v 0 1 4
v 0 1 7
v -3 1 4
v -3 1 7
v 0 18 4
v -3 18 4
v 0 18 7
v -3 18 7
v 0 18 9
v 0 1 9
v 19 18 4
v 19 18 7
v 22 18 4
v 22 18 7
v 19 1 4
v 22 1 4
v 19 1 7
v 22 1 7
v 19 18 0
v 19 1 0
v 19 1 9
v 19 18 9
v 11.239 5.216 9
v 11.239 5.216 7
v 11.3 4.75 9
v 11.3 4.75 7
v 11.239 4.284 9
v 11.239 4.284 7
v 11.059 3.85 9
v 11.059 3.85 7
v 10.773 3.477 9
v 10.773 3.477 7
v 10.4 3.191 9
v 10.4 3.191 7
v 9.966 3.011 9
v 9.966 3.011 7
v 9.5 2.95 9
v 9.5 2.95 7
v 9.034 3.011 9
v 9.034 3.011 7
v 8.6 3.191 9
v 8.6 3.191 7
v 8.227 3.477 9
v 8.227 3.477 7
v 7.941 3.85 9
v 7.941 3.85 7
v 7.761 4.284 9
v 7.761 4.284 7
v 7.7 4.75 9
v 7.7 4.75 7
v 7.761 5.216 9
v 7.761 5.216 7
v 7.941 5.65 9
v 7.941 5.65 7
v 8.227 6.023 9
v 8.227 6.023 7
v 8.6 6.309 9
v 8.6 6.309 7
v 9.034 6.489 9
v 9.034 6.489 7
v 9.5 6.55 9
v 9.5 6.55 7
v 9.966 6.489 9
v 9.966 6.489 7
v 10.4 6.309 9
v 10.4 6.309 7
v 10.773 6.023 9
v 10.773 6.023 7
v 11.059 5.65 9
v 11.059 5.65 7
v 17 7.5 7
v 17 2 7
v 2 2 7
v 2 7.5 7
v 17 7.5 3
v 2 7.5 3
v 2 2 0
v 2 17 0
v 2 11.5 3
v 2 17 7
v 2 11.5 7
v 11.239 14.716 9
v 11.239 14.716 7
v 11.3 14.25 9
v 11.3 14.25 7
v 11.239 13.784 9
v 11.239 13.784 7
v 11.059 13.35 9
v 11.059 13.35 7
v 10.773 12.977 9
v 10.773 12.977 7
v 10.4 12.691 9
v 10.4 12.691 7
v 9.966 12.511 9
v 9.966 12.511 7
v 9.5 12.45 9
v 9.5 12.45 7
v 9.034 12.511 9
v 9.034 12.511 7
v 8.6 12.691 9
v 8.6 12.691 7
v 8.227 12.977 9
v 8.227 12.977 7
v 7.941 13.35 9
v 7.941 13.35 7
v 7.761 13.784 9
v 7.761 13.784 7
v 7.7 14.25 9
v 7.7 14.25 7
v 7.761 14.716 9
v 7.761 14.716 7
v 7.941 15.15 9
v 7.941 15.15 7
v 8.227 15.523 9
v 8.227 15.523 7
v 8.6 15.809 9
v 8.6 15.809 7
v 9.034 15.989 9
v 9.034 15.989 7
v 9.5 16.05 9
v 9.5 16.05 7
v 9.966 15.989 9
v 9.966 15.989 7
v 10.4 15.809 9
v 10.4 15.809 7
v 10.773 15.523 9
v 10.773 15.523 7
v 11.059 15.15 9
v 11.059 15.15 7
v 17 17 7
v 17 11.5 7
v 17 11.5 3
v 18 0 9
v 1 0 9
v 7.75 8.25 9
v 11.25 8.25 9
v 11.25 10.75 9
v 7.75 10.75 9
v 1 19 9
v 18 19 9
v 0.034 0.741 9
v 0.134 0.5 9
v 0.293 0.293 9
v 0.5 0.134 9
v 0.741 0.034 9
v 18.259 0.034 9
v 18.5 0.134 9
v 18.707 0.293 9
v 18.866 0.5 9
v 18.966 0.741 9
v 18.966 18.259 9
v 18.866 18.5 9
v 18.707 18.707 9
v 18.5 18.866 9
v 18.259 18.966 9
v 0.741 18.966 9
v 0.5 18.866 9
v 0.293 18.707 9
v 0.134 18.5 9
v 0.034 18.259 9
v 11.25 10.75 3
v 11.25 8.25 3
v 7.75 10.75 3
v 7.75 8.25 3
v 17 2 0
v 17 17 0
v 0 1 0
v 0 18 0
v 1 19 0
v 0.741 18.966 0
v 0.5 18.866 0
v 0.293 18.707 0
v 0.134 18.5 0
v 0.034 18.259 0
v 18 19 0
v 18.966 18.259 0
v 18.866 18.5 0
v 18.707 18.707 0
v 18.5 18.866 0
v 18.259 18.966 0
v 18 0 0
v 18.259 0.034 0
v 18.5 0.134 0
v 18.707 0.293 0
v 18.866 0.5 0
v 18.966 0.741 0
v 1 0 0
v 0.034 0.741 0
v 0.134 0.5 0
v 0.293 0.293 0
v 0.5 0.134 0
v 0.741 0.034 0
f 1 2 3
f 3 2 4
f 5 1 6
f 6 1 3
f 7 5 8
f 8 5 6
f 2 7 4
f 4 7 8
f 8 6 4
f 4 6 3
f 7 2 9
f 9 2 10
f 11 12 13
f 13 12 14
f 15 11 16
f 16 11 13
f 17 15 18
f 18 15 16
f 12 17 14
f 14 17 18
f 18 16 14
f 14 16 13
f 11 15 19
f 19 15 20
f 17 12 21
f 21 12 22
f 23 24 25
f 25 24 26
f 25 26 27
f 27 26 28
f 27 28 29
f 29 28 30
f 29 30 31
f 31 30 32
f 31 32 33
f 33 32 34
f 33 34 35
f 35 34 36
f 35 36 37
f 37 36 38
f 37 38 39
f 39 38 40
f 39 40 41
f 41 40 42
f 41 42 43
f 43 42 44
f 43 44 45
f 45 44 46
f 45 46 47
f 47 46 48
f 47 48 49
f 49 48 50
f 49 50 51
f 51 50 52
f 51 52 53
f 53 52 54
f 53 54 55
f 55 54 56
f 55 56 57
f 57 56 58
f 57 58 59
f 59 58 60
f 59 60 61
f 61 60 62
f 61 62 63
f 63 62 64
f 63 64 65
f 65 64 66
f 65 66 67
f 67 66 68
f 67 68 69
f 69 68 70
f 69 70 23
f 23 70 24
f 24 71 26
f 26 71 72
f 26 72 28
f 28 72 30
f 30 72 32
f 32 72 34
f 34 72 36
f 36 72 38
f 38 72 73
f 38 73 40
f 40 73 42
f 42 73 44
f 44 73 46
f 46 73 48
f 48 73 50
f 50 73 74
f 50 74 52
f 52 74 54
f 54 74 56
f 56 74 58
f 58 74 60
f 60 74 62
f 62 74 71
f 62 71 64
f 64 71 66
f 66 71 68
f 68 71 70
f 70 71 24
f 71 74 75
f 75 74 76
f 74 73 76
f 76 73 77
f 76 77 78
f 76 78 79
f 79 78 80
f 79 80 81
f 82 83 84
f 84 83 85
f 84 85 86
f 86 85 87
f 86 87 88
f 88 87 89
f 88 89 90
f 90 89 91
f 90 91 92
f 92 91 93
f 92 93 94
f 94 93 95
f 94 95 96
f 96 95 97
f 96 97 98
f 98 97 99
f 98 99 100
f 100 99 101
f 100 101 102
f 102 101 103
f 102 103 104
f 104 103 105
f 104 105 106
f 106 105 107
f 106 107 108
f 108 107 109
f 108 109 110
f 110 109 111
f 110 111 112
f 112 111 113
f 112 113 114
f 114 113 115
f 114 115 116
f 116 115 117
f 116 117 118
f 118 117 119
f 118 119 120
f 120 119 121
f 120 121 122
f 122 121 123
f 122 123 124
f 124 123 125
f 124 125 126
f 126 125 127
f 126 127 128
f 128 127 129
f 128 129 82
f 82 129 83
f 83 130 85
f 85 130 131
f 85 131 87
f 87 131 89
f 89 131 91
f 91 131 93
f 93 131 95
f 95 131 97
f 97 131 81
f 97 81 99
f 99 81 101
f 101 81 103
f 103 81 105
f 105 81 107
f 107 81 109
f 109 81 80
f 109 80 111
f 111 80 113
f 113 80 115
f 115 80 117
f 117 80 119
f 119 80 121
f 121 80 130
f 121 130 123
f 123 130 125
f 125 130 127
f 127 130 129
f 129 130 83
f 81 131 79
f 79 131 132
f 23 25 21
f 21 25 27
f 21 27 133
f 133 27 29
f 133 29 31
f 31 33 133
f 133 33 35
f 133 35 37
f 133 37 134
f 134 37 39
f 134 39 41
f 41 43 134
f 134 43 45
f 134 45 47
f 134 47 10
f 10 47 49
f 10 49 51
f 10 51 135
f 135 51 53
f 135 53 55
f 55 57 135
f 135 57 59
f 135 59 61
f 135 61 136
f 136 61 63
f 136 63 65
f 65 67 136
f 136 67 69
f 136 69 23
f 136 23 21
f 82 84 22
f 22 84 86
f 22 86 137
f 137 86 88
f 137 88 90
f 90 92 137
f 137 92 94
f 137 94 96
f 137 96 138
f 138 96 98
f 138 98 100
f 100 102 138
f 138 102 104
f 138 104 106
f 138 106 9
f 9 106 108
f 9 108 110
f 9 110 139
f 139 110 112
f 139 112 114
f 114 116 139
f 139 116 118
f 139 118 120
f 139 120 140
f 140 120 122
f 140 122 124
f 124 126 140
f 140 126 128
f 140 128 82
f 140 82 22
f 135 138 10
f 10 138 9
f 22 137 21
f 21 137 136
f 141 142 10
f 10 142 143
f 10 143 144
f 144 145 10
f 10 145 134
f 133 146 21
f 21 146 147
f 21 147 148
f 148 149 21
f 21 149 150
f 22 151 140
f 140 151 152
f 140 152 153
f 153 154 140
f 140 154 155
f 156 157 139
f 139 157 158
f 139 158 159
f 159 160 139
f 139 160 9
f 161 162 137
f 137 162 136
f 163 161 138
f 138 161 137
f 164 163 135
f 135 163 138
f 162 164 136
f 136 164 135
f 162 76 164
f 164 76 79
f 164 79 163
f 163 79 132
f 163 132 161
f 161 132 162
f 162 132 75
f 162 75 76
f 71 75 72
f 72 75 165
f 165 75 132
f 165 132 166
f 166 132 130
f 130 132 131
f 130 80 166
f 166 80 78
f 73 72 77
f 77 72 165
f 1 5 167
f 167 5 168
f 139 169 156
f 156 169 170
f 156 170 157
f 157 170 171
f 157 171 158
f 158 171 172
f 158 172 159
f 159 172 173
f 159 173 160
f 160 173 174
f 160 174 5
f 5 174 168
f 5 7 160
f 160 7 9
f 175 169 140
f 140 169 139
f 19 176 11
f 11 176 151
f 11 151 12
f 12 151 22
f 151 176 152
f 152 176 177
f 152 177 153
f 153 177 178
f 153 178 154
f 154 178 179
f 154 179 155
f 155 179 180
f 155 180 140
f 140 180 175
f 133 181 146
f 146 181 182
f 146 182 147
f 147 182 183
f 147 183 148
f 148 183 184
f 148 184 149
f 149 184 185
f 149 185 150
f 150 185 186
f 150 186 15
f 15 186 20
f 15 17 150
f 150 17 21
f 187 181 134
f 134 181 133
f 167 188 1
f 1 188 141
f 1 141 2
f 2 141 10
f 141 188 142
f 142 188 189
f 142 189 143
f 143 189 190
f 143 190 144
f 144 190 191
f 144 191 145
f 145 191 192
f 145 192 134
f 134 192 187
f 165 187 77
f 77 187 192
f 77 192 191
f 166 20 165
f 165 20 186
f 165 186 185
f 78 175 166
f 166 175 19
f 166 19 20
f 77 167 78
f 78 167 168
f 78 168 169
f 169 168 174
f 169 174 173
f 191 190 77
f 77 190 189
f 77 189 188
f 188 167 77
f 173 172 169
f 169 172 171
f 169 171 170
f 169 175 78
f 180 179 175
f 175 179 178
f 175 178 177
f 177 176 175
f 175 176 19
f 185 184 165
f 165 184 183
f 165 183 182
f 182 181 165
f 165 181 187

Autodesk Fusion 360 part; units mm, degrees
sketch "Sketch1" plane through (0, 0, 0) normal (0, 0, 1) x (1, 0, 0)
  line L0 (1, 0) -> (18, 0)
  line L1 (19, 1) -> (19, 18)
  line L2 (18, 19) -> (1, 19)
  line L3 (0, 18) -> (0, 1)
  arc A0 (1, 19) -> (0, 18) centre (1, 18) ccw
  arc A1 (19, 18) -> (18, 19) centre (18, 18) ccw
  arc A2 (18, 0) -> (19, 1) centre (18, 1) ccw
  arc A3 (0, 1) -> (1, 0) centre (1, 1) ccw
  line L4 (18.7071, 18.7071) -> (0.2929, 0.2929) construction
  line L5 (18.7071, 0.2929) -> (0.2929, 18.7071) construction
  line L6 (2, 17) -> (17, 17)
  line L7 (17, 17) -> (17, 2)
  line L8 (17, 2) -> (2, 2)
  line L9 (2, 2) -> (2, 17)
  line L10 (17, 17) -> (2, 2) construction
  line L11 (2, 17) -> (17, 2) construction
  point P0 (19, 0)
  point P1 (0, 19)
  point P2 (9.5, 9.5)
  point P3 (9.5, 9.5)
  dimension "d1" = 19
  dimension "d2" = 19
  dimension "d3" = 1
  dimension "d4" = 1
  dimension "d5" = 1
  dimension "d6" = 1
  dimension "d7" = 15
  dimension "d8" = 15
extrude "Extrude1" add sketch "Sketch1" along normal blind 3 makes body 1
sketch "Sketch2" plane through (0, 0, 3) normal (0, 0, 1) x (-1, 0, 0)
  line L0 (-17, -2) -> (-2, -2)
  line L1 (-2, -2) -> (-2, -17)
  line L2 (-2, -17) -> (-17, -17)
  line L3 (-17, -17) -> (-17, -2)
  arc A0 (0, -1) -> (-1, 0) centre (-1, -1) ccw
  line L4 (-1, 0) -> (-18, 0)
  arc A1 (-18, 0) -> (-19, -1) centre (-18, -1) ccw
  line L5 (-19, -1) -> (-19, -18)
  arc A2 (-19, -18) -> (-18, -19) centre (-18, -18) ccw
  line L6 (-18, -19) -> (-1, -19)
  arc A3 (-1, -19) -> (0, -18) centre (-1, -18) ccw
  line L7 (0, -18) -> (0, -1)
  line L8 (-17, -2) -> (-2, -17) construction
  line L9 (-2, -2) -> (-17, -17) construction
  line L10 (-9.5, -9.5) -> (-17, -9.5) construction
  line L11 (-9.5, -9.5) -> (-2, -9.5) construction
  line L12 (-17, -11.5) -> (-2, -11.5)
  line L13 (-17, -7.5) -> (-2, -7.5)
  line L14 (-2, -7.5) -> (-2, -11.5)
  line L15 (-17, -11.5) -> (-17, -7.5)
  line L16 (-7.75, -10.75) -> (-11.25, -10.75)
  line L17 (-11.25, -10.75) -> (-11.25, -8.25)
  line L18 (-11.25, -8.25) -> (-7.75, -8.25)
  line L19 (-7.75, -8.25) -> (-7.75, -10.75)
  line L20 (-11.25, -8.25) -> (-7.75, -10.75) construction
  line L21 (-11.25, -10.75) -> (-7.75, -8.25) construction
  point P0 (-9.5, -9.5)
  point P1 (-9.5, -9.5)
  dimension "d11" = 2
  dimension "d12" = 2
  dimension "d13" = 3.5
  dimension "d14" = 2.5
extrude "Extrude2" add sketch "Sketch2" along normal blind 4 separate body contours L1 L3 L12 L13 L14 L15 makes body 2
extrude "Extrude3" add 1 faces at (0.6667, 7, 3) along direction (0, 0, 1) blind 4 on bodies 1 bodies 1 2
sketch "Sketch3" plane through (0, 11.5, 0) normal (0, 1, 0) x (-1, 0, 0)
  line L0 (-17, 3) -> (-2, 3)
  line L1 (-2, 3) -> (-2, 7)
  line L2 (-2, 7) -> (-17, 7)
  line L3 (-17, 7) -> (-17, 3)
sketch "Sketch4" plane through (0, 0, 7) normal (0, 0, 1) x (-1, 0, 0)
  line L0 (-17, -7.5) -> (-17, -2)
  line L1 (-17, -2) -> (-2, -2)
  line L2 (-2, -2) -> (-2, -7.5)
  line L3 (-2, -7.5) -> (-17, -7.5)
  line L4 (-11.25, -8.25) -> (-7.75, -8.25)
  line L5 (-7.75, -8.25) -> (-7.75, -10.75)
  line L6 (-7.75, -10.75) -> (-11.25, -10.75)
  line L7 (-11.25, -10.75) -> (-11.25, -8.25)
  line L8 (-17, -11.5) -> (-2, -11.5)
  line L9 (-2, -11.5) -> (-2, -17)
  line L10 (-2, -17) -> (-17, -17)
  line L11 (-17, -17) -> (-17, -11.5)
  arc A0 (0, -1) -> (-1, 0) centre (-1, -1) ccw
  line L12 (-1, 0) -> (-18, 0)
  arc A1 (-18, 0) -> (-19, -1) centre (-18, -1) ccw
  line L13 (-19, -1) -> (-19, -18)
  arc A2 (-19, -18) -> (-18, -19) centre (-18, -18) ccw
  line L14 (-18, -19) -> (-1, -19)
  arc A3 (-1, -19) -> (0, -18) centre (-1, -18) ccw
  line L15 (0, -18) -> (0, -1)
  line L16 (-17, -11.5) -> (-2, -17) construction
  line L17 (-2, -11.5) -> (-17, -17) construction
  line L18 (-17, -2) -> (-2, -7.5) construction
  line L19 (-2, -2) -> (-17, -7.5) construction
  line L20 (-17, -11.5) -> (-2, -11.5)
  line L21 (-2, -11.5) -> (-17, -17) construction
  line L22 (-2, -17) -> (-17, -17)
  circle A4 centre (-9.5, -14.25) radius 1.8
  line L23 (-2, -11.5) -> (-2, -17)
  line L24 (-17, -11.5) -> (-2, -17) construction
  line L25 (-17, -17) -> (-17, -11.5)
  line L26 (-2, -7.5) -> (-17, -7.5)
  circle A5 centre (-9.5, -4.75) radius 1.8
  line L27 (-2, -2) -> (-2, -7.5)
  line L28 (-2, -2) -> (-17, -7.5) construction
  line L29 (-17, -7.5) -> (-17, -2)
  line L30 (-17, -2) -> (-2, -2)
  line L31 (-17, -2) -> (-2, -7.5) construction
  point P0 (-9.5, -14.25)
  point P1 (-9.5, -4.75)
  point P2 (-9.5, -14.25)
  point P3 (-9.5, -4.75)
  dimension "d22" = 15
  dimension "d23" = 5.5
  dimension "d24" = 3.6
  dimension "d25" = 15
  dimension "d26" = 5.5
  dimension "d27" = 3.6
extrude "Extrude4" add sketch "Sketch4" along normal blind 2 separate body contours L0 L1 L2 L3 L26 L27 L29 L30 | L8 L9 L10 L11 L20 L22 L23 L25 makes body 3 at (3.9, 14.25, 7) makes body 4 at (15.1, 4.75, 7)
extrude "Extrude5" add 1 faces at (15.0833, 9.9167, 7) along direction (0, 0, 1) blind 2 on bodies 1 bodies 1 3 4
sketch "Sketch5" plane through (19, 0, 0) normal (1, 0, 0) x (0, 1, 0)
  line L0 (1, 0) -> (18, 0)
  line L1 (18, 0) -> (18, 9)
  line L2 (18, 9) -> (1, 9)
  line L3 (1, 9) -> (1, 0)
  line L4 (18, 0) -> (18, 4) construction
  line L5 (18, 4) -> (1, 4)
  line L6 (1, 4) -> (1, 7)
  line L7 (1, 7) -> (18, 7)
  line L8 (18, 7) -> (18, 4)
  dimension "d32" = 4
  dimension "d33" = 3
extrude "Extrude6" add sketch "Sketch5" along normal blind 3 contours L1 L3 L5 L6 L7 L8 bodies 1
sketch "Sketch6" plane through (0, 0, 0) normal (-1, 0, 0) x (0, -1, 0)
  line L0 (-18, 0) -> (-1, 0)
  line L1 (-1, 0) -> (-1, 9)
  line L2 (-1, 9) -> (-18, 9)
  line L3 (-18, 9) -> (-18, 0)
  line L4 (-1, 0) -> (-1, 4) construction
  line L5 (-1, 4) -> (-18, 4)
  line L6 (-18, 4) -> (-18, 7)
  line L7 (-18, 7) -> (-1, 7)
  line L8 (-1, 7) -> (-1, 4)
  dimension "d36" = 4
  dimension "d37" = 3
extrude "Extrude7" add sketch "Sketch6" along normal blind 3 contours L1 L3 L5 L6 L7 L8 bodies 1
